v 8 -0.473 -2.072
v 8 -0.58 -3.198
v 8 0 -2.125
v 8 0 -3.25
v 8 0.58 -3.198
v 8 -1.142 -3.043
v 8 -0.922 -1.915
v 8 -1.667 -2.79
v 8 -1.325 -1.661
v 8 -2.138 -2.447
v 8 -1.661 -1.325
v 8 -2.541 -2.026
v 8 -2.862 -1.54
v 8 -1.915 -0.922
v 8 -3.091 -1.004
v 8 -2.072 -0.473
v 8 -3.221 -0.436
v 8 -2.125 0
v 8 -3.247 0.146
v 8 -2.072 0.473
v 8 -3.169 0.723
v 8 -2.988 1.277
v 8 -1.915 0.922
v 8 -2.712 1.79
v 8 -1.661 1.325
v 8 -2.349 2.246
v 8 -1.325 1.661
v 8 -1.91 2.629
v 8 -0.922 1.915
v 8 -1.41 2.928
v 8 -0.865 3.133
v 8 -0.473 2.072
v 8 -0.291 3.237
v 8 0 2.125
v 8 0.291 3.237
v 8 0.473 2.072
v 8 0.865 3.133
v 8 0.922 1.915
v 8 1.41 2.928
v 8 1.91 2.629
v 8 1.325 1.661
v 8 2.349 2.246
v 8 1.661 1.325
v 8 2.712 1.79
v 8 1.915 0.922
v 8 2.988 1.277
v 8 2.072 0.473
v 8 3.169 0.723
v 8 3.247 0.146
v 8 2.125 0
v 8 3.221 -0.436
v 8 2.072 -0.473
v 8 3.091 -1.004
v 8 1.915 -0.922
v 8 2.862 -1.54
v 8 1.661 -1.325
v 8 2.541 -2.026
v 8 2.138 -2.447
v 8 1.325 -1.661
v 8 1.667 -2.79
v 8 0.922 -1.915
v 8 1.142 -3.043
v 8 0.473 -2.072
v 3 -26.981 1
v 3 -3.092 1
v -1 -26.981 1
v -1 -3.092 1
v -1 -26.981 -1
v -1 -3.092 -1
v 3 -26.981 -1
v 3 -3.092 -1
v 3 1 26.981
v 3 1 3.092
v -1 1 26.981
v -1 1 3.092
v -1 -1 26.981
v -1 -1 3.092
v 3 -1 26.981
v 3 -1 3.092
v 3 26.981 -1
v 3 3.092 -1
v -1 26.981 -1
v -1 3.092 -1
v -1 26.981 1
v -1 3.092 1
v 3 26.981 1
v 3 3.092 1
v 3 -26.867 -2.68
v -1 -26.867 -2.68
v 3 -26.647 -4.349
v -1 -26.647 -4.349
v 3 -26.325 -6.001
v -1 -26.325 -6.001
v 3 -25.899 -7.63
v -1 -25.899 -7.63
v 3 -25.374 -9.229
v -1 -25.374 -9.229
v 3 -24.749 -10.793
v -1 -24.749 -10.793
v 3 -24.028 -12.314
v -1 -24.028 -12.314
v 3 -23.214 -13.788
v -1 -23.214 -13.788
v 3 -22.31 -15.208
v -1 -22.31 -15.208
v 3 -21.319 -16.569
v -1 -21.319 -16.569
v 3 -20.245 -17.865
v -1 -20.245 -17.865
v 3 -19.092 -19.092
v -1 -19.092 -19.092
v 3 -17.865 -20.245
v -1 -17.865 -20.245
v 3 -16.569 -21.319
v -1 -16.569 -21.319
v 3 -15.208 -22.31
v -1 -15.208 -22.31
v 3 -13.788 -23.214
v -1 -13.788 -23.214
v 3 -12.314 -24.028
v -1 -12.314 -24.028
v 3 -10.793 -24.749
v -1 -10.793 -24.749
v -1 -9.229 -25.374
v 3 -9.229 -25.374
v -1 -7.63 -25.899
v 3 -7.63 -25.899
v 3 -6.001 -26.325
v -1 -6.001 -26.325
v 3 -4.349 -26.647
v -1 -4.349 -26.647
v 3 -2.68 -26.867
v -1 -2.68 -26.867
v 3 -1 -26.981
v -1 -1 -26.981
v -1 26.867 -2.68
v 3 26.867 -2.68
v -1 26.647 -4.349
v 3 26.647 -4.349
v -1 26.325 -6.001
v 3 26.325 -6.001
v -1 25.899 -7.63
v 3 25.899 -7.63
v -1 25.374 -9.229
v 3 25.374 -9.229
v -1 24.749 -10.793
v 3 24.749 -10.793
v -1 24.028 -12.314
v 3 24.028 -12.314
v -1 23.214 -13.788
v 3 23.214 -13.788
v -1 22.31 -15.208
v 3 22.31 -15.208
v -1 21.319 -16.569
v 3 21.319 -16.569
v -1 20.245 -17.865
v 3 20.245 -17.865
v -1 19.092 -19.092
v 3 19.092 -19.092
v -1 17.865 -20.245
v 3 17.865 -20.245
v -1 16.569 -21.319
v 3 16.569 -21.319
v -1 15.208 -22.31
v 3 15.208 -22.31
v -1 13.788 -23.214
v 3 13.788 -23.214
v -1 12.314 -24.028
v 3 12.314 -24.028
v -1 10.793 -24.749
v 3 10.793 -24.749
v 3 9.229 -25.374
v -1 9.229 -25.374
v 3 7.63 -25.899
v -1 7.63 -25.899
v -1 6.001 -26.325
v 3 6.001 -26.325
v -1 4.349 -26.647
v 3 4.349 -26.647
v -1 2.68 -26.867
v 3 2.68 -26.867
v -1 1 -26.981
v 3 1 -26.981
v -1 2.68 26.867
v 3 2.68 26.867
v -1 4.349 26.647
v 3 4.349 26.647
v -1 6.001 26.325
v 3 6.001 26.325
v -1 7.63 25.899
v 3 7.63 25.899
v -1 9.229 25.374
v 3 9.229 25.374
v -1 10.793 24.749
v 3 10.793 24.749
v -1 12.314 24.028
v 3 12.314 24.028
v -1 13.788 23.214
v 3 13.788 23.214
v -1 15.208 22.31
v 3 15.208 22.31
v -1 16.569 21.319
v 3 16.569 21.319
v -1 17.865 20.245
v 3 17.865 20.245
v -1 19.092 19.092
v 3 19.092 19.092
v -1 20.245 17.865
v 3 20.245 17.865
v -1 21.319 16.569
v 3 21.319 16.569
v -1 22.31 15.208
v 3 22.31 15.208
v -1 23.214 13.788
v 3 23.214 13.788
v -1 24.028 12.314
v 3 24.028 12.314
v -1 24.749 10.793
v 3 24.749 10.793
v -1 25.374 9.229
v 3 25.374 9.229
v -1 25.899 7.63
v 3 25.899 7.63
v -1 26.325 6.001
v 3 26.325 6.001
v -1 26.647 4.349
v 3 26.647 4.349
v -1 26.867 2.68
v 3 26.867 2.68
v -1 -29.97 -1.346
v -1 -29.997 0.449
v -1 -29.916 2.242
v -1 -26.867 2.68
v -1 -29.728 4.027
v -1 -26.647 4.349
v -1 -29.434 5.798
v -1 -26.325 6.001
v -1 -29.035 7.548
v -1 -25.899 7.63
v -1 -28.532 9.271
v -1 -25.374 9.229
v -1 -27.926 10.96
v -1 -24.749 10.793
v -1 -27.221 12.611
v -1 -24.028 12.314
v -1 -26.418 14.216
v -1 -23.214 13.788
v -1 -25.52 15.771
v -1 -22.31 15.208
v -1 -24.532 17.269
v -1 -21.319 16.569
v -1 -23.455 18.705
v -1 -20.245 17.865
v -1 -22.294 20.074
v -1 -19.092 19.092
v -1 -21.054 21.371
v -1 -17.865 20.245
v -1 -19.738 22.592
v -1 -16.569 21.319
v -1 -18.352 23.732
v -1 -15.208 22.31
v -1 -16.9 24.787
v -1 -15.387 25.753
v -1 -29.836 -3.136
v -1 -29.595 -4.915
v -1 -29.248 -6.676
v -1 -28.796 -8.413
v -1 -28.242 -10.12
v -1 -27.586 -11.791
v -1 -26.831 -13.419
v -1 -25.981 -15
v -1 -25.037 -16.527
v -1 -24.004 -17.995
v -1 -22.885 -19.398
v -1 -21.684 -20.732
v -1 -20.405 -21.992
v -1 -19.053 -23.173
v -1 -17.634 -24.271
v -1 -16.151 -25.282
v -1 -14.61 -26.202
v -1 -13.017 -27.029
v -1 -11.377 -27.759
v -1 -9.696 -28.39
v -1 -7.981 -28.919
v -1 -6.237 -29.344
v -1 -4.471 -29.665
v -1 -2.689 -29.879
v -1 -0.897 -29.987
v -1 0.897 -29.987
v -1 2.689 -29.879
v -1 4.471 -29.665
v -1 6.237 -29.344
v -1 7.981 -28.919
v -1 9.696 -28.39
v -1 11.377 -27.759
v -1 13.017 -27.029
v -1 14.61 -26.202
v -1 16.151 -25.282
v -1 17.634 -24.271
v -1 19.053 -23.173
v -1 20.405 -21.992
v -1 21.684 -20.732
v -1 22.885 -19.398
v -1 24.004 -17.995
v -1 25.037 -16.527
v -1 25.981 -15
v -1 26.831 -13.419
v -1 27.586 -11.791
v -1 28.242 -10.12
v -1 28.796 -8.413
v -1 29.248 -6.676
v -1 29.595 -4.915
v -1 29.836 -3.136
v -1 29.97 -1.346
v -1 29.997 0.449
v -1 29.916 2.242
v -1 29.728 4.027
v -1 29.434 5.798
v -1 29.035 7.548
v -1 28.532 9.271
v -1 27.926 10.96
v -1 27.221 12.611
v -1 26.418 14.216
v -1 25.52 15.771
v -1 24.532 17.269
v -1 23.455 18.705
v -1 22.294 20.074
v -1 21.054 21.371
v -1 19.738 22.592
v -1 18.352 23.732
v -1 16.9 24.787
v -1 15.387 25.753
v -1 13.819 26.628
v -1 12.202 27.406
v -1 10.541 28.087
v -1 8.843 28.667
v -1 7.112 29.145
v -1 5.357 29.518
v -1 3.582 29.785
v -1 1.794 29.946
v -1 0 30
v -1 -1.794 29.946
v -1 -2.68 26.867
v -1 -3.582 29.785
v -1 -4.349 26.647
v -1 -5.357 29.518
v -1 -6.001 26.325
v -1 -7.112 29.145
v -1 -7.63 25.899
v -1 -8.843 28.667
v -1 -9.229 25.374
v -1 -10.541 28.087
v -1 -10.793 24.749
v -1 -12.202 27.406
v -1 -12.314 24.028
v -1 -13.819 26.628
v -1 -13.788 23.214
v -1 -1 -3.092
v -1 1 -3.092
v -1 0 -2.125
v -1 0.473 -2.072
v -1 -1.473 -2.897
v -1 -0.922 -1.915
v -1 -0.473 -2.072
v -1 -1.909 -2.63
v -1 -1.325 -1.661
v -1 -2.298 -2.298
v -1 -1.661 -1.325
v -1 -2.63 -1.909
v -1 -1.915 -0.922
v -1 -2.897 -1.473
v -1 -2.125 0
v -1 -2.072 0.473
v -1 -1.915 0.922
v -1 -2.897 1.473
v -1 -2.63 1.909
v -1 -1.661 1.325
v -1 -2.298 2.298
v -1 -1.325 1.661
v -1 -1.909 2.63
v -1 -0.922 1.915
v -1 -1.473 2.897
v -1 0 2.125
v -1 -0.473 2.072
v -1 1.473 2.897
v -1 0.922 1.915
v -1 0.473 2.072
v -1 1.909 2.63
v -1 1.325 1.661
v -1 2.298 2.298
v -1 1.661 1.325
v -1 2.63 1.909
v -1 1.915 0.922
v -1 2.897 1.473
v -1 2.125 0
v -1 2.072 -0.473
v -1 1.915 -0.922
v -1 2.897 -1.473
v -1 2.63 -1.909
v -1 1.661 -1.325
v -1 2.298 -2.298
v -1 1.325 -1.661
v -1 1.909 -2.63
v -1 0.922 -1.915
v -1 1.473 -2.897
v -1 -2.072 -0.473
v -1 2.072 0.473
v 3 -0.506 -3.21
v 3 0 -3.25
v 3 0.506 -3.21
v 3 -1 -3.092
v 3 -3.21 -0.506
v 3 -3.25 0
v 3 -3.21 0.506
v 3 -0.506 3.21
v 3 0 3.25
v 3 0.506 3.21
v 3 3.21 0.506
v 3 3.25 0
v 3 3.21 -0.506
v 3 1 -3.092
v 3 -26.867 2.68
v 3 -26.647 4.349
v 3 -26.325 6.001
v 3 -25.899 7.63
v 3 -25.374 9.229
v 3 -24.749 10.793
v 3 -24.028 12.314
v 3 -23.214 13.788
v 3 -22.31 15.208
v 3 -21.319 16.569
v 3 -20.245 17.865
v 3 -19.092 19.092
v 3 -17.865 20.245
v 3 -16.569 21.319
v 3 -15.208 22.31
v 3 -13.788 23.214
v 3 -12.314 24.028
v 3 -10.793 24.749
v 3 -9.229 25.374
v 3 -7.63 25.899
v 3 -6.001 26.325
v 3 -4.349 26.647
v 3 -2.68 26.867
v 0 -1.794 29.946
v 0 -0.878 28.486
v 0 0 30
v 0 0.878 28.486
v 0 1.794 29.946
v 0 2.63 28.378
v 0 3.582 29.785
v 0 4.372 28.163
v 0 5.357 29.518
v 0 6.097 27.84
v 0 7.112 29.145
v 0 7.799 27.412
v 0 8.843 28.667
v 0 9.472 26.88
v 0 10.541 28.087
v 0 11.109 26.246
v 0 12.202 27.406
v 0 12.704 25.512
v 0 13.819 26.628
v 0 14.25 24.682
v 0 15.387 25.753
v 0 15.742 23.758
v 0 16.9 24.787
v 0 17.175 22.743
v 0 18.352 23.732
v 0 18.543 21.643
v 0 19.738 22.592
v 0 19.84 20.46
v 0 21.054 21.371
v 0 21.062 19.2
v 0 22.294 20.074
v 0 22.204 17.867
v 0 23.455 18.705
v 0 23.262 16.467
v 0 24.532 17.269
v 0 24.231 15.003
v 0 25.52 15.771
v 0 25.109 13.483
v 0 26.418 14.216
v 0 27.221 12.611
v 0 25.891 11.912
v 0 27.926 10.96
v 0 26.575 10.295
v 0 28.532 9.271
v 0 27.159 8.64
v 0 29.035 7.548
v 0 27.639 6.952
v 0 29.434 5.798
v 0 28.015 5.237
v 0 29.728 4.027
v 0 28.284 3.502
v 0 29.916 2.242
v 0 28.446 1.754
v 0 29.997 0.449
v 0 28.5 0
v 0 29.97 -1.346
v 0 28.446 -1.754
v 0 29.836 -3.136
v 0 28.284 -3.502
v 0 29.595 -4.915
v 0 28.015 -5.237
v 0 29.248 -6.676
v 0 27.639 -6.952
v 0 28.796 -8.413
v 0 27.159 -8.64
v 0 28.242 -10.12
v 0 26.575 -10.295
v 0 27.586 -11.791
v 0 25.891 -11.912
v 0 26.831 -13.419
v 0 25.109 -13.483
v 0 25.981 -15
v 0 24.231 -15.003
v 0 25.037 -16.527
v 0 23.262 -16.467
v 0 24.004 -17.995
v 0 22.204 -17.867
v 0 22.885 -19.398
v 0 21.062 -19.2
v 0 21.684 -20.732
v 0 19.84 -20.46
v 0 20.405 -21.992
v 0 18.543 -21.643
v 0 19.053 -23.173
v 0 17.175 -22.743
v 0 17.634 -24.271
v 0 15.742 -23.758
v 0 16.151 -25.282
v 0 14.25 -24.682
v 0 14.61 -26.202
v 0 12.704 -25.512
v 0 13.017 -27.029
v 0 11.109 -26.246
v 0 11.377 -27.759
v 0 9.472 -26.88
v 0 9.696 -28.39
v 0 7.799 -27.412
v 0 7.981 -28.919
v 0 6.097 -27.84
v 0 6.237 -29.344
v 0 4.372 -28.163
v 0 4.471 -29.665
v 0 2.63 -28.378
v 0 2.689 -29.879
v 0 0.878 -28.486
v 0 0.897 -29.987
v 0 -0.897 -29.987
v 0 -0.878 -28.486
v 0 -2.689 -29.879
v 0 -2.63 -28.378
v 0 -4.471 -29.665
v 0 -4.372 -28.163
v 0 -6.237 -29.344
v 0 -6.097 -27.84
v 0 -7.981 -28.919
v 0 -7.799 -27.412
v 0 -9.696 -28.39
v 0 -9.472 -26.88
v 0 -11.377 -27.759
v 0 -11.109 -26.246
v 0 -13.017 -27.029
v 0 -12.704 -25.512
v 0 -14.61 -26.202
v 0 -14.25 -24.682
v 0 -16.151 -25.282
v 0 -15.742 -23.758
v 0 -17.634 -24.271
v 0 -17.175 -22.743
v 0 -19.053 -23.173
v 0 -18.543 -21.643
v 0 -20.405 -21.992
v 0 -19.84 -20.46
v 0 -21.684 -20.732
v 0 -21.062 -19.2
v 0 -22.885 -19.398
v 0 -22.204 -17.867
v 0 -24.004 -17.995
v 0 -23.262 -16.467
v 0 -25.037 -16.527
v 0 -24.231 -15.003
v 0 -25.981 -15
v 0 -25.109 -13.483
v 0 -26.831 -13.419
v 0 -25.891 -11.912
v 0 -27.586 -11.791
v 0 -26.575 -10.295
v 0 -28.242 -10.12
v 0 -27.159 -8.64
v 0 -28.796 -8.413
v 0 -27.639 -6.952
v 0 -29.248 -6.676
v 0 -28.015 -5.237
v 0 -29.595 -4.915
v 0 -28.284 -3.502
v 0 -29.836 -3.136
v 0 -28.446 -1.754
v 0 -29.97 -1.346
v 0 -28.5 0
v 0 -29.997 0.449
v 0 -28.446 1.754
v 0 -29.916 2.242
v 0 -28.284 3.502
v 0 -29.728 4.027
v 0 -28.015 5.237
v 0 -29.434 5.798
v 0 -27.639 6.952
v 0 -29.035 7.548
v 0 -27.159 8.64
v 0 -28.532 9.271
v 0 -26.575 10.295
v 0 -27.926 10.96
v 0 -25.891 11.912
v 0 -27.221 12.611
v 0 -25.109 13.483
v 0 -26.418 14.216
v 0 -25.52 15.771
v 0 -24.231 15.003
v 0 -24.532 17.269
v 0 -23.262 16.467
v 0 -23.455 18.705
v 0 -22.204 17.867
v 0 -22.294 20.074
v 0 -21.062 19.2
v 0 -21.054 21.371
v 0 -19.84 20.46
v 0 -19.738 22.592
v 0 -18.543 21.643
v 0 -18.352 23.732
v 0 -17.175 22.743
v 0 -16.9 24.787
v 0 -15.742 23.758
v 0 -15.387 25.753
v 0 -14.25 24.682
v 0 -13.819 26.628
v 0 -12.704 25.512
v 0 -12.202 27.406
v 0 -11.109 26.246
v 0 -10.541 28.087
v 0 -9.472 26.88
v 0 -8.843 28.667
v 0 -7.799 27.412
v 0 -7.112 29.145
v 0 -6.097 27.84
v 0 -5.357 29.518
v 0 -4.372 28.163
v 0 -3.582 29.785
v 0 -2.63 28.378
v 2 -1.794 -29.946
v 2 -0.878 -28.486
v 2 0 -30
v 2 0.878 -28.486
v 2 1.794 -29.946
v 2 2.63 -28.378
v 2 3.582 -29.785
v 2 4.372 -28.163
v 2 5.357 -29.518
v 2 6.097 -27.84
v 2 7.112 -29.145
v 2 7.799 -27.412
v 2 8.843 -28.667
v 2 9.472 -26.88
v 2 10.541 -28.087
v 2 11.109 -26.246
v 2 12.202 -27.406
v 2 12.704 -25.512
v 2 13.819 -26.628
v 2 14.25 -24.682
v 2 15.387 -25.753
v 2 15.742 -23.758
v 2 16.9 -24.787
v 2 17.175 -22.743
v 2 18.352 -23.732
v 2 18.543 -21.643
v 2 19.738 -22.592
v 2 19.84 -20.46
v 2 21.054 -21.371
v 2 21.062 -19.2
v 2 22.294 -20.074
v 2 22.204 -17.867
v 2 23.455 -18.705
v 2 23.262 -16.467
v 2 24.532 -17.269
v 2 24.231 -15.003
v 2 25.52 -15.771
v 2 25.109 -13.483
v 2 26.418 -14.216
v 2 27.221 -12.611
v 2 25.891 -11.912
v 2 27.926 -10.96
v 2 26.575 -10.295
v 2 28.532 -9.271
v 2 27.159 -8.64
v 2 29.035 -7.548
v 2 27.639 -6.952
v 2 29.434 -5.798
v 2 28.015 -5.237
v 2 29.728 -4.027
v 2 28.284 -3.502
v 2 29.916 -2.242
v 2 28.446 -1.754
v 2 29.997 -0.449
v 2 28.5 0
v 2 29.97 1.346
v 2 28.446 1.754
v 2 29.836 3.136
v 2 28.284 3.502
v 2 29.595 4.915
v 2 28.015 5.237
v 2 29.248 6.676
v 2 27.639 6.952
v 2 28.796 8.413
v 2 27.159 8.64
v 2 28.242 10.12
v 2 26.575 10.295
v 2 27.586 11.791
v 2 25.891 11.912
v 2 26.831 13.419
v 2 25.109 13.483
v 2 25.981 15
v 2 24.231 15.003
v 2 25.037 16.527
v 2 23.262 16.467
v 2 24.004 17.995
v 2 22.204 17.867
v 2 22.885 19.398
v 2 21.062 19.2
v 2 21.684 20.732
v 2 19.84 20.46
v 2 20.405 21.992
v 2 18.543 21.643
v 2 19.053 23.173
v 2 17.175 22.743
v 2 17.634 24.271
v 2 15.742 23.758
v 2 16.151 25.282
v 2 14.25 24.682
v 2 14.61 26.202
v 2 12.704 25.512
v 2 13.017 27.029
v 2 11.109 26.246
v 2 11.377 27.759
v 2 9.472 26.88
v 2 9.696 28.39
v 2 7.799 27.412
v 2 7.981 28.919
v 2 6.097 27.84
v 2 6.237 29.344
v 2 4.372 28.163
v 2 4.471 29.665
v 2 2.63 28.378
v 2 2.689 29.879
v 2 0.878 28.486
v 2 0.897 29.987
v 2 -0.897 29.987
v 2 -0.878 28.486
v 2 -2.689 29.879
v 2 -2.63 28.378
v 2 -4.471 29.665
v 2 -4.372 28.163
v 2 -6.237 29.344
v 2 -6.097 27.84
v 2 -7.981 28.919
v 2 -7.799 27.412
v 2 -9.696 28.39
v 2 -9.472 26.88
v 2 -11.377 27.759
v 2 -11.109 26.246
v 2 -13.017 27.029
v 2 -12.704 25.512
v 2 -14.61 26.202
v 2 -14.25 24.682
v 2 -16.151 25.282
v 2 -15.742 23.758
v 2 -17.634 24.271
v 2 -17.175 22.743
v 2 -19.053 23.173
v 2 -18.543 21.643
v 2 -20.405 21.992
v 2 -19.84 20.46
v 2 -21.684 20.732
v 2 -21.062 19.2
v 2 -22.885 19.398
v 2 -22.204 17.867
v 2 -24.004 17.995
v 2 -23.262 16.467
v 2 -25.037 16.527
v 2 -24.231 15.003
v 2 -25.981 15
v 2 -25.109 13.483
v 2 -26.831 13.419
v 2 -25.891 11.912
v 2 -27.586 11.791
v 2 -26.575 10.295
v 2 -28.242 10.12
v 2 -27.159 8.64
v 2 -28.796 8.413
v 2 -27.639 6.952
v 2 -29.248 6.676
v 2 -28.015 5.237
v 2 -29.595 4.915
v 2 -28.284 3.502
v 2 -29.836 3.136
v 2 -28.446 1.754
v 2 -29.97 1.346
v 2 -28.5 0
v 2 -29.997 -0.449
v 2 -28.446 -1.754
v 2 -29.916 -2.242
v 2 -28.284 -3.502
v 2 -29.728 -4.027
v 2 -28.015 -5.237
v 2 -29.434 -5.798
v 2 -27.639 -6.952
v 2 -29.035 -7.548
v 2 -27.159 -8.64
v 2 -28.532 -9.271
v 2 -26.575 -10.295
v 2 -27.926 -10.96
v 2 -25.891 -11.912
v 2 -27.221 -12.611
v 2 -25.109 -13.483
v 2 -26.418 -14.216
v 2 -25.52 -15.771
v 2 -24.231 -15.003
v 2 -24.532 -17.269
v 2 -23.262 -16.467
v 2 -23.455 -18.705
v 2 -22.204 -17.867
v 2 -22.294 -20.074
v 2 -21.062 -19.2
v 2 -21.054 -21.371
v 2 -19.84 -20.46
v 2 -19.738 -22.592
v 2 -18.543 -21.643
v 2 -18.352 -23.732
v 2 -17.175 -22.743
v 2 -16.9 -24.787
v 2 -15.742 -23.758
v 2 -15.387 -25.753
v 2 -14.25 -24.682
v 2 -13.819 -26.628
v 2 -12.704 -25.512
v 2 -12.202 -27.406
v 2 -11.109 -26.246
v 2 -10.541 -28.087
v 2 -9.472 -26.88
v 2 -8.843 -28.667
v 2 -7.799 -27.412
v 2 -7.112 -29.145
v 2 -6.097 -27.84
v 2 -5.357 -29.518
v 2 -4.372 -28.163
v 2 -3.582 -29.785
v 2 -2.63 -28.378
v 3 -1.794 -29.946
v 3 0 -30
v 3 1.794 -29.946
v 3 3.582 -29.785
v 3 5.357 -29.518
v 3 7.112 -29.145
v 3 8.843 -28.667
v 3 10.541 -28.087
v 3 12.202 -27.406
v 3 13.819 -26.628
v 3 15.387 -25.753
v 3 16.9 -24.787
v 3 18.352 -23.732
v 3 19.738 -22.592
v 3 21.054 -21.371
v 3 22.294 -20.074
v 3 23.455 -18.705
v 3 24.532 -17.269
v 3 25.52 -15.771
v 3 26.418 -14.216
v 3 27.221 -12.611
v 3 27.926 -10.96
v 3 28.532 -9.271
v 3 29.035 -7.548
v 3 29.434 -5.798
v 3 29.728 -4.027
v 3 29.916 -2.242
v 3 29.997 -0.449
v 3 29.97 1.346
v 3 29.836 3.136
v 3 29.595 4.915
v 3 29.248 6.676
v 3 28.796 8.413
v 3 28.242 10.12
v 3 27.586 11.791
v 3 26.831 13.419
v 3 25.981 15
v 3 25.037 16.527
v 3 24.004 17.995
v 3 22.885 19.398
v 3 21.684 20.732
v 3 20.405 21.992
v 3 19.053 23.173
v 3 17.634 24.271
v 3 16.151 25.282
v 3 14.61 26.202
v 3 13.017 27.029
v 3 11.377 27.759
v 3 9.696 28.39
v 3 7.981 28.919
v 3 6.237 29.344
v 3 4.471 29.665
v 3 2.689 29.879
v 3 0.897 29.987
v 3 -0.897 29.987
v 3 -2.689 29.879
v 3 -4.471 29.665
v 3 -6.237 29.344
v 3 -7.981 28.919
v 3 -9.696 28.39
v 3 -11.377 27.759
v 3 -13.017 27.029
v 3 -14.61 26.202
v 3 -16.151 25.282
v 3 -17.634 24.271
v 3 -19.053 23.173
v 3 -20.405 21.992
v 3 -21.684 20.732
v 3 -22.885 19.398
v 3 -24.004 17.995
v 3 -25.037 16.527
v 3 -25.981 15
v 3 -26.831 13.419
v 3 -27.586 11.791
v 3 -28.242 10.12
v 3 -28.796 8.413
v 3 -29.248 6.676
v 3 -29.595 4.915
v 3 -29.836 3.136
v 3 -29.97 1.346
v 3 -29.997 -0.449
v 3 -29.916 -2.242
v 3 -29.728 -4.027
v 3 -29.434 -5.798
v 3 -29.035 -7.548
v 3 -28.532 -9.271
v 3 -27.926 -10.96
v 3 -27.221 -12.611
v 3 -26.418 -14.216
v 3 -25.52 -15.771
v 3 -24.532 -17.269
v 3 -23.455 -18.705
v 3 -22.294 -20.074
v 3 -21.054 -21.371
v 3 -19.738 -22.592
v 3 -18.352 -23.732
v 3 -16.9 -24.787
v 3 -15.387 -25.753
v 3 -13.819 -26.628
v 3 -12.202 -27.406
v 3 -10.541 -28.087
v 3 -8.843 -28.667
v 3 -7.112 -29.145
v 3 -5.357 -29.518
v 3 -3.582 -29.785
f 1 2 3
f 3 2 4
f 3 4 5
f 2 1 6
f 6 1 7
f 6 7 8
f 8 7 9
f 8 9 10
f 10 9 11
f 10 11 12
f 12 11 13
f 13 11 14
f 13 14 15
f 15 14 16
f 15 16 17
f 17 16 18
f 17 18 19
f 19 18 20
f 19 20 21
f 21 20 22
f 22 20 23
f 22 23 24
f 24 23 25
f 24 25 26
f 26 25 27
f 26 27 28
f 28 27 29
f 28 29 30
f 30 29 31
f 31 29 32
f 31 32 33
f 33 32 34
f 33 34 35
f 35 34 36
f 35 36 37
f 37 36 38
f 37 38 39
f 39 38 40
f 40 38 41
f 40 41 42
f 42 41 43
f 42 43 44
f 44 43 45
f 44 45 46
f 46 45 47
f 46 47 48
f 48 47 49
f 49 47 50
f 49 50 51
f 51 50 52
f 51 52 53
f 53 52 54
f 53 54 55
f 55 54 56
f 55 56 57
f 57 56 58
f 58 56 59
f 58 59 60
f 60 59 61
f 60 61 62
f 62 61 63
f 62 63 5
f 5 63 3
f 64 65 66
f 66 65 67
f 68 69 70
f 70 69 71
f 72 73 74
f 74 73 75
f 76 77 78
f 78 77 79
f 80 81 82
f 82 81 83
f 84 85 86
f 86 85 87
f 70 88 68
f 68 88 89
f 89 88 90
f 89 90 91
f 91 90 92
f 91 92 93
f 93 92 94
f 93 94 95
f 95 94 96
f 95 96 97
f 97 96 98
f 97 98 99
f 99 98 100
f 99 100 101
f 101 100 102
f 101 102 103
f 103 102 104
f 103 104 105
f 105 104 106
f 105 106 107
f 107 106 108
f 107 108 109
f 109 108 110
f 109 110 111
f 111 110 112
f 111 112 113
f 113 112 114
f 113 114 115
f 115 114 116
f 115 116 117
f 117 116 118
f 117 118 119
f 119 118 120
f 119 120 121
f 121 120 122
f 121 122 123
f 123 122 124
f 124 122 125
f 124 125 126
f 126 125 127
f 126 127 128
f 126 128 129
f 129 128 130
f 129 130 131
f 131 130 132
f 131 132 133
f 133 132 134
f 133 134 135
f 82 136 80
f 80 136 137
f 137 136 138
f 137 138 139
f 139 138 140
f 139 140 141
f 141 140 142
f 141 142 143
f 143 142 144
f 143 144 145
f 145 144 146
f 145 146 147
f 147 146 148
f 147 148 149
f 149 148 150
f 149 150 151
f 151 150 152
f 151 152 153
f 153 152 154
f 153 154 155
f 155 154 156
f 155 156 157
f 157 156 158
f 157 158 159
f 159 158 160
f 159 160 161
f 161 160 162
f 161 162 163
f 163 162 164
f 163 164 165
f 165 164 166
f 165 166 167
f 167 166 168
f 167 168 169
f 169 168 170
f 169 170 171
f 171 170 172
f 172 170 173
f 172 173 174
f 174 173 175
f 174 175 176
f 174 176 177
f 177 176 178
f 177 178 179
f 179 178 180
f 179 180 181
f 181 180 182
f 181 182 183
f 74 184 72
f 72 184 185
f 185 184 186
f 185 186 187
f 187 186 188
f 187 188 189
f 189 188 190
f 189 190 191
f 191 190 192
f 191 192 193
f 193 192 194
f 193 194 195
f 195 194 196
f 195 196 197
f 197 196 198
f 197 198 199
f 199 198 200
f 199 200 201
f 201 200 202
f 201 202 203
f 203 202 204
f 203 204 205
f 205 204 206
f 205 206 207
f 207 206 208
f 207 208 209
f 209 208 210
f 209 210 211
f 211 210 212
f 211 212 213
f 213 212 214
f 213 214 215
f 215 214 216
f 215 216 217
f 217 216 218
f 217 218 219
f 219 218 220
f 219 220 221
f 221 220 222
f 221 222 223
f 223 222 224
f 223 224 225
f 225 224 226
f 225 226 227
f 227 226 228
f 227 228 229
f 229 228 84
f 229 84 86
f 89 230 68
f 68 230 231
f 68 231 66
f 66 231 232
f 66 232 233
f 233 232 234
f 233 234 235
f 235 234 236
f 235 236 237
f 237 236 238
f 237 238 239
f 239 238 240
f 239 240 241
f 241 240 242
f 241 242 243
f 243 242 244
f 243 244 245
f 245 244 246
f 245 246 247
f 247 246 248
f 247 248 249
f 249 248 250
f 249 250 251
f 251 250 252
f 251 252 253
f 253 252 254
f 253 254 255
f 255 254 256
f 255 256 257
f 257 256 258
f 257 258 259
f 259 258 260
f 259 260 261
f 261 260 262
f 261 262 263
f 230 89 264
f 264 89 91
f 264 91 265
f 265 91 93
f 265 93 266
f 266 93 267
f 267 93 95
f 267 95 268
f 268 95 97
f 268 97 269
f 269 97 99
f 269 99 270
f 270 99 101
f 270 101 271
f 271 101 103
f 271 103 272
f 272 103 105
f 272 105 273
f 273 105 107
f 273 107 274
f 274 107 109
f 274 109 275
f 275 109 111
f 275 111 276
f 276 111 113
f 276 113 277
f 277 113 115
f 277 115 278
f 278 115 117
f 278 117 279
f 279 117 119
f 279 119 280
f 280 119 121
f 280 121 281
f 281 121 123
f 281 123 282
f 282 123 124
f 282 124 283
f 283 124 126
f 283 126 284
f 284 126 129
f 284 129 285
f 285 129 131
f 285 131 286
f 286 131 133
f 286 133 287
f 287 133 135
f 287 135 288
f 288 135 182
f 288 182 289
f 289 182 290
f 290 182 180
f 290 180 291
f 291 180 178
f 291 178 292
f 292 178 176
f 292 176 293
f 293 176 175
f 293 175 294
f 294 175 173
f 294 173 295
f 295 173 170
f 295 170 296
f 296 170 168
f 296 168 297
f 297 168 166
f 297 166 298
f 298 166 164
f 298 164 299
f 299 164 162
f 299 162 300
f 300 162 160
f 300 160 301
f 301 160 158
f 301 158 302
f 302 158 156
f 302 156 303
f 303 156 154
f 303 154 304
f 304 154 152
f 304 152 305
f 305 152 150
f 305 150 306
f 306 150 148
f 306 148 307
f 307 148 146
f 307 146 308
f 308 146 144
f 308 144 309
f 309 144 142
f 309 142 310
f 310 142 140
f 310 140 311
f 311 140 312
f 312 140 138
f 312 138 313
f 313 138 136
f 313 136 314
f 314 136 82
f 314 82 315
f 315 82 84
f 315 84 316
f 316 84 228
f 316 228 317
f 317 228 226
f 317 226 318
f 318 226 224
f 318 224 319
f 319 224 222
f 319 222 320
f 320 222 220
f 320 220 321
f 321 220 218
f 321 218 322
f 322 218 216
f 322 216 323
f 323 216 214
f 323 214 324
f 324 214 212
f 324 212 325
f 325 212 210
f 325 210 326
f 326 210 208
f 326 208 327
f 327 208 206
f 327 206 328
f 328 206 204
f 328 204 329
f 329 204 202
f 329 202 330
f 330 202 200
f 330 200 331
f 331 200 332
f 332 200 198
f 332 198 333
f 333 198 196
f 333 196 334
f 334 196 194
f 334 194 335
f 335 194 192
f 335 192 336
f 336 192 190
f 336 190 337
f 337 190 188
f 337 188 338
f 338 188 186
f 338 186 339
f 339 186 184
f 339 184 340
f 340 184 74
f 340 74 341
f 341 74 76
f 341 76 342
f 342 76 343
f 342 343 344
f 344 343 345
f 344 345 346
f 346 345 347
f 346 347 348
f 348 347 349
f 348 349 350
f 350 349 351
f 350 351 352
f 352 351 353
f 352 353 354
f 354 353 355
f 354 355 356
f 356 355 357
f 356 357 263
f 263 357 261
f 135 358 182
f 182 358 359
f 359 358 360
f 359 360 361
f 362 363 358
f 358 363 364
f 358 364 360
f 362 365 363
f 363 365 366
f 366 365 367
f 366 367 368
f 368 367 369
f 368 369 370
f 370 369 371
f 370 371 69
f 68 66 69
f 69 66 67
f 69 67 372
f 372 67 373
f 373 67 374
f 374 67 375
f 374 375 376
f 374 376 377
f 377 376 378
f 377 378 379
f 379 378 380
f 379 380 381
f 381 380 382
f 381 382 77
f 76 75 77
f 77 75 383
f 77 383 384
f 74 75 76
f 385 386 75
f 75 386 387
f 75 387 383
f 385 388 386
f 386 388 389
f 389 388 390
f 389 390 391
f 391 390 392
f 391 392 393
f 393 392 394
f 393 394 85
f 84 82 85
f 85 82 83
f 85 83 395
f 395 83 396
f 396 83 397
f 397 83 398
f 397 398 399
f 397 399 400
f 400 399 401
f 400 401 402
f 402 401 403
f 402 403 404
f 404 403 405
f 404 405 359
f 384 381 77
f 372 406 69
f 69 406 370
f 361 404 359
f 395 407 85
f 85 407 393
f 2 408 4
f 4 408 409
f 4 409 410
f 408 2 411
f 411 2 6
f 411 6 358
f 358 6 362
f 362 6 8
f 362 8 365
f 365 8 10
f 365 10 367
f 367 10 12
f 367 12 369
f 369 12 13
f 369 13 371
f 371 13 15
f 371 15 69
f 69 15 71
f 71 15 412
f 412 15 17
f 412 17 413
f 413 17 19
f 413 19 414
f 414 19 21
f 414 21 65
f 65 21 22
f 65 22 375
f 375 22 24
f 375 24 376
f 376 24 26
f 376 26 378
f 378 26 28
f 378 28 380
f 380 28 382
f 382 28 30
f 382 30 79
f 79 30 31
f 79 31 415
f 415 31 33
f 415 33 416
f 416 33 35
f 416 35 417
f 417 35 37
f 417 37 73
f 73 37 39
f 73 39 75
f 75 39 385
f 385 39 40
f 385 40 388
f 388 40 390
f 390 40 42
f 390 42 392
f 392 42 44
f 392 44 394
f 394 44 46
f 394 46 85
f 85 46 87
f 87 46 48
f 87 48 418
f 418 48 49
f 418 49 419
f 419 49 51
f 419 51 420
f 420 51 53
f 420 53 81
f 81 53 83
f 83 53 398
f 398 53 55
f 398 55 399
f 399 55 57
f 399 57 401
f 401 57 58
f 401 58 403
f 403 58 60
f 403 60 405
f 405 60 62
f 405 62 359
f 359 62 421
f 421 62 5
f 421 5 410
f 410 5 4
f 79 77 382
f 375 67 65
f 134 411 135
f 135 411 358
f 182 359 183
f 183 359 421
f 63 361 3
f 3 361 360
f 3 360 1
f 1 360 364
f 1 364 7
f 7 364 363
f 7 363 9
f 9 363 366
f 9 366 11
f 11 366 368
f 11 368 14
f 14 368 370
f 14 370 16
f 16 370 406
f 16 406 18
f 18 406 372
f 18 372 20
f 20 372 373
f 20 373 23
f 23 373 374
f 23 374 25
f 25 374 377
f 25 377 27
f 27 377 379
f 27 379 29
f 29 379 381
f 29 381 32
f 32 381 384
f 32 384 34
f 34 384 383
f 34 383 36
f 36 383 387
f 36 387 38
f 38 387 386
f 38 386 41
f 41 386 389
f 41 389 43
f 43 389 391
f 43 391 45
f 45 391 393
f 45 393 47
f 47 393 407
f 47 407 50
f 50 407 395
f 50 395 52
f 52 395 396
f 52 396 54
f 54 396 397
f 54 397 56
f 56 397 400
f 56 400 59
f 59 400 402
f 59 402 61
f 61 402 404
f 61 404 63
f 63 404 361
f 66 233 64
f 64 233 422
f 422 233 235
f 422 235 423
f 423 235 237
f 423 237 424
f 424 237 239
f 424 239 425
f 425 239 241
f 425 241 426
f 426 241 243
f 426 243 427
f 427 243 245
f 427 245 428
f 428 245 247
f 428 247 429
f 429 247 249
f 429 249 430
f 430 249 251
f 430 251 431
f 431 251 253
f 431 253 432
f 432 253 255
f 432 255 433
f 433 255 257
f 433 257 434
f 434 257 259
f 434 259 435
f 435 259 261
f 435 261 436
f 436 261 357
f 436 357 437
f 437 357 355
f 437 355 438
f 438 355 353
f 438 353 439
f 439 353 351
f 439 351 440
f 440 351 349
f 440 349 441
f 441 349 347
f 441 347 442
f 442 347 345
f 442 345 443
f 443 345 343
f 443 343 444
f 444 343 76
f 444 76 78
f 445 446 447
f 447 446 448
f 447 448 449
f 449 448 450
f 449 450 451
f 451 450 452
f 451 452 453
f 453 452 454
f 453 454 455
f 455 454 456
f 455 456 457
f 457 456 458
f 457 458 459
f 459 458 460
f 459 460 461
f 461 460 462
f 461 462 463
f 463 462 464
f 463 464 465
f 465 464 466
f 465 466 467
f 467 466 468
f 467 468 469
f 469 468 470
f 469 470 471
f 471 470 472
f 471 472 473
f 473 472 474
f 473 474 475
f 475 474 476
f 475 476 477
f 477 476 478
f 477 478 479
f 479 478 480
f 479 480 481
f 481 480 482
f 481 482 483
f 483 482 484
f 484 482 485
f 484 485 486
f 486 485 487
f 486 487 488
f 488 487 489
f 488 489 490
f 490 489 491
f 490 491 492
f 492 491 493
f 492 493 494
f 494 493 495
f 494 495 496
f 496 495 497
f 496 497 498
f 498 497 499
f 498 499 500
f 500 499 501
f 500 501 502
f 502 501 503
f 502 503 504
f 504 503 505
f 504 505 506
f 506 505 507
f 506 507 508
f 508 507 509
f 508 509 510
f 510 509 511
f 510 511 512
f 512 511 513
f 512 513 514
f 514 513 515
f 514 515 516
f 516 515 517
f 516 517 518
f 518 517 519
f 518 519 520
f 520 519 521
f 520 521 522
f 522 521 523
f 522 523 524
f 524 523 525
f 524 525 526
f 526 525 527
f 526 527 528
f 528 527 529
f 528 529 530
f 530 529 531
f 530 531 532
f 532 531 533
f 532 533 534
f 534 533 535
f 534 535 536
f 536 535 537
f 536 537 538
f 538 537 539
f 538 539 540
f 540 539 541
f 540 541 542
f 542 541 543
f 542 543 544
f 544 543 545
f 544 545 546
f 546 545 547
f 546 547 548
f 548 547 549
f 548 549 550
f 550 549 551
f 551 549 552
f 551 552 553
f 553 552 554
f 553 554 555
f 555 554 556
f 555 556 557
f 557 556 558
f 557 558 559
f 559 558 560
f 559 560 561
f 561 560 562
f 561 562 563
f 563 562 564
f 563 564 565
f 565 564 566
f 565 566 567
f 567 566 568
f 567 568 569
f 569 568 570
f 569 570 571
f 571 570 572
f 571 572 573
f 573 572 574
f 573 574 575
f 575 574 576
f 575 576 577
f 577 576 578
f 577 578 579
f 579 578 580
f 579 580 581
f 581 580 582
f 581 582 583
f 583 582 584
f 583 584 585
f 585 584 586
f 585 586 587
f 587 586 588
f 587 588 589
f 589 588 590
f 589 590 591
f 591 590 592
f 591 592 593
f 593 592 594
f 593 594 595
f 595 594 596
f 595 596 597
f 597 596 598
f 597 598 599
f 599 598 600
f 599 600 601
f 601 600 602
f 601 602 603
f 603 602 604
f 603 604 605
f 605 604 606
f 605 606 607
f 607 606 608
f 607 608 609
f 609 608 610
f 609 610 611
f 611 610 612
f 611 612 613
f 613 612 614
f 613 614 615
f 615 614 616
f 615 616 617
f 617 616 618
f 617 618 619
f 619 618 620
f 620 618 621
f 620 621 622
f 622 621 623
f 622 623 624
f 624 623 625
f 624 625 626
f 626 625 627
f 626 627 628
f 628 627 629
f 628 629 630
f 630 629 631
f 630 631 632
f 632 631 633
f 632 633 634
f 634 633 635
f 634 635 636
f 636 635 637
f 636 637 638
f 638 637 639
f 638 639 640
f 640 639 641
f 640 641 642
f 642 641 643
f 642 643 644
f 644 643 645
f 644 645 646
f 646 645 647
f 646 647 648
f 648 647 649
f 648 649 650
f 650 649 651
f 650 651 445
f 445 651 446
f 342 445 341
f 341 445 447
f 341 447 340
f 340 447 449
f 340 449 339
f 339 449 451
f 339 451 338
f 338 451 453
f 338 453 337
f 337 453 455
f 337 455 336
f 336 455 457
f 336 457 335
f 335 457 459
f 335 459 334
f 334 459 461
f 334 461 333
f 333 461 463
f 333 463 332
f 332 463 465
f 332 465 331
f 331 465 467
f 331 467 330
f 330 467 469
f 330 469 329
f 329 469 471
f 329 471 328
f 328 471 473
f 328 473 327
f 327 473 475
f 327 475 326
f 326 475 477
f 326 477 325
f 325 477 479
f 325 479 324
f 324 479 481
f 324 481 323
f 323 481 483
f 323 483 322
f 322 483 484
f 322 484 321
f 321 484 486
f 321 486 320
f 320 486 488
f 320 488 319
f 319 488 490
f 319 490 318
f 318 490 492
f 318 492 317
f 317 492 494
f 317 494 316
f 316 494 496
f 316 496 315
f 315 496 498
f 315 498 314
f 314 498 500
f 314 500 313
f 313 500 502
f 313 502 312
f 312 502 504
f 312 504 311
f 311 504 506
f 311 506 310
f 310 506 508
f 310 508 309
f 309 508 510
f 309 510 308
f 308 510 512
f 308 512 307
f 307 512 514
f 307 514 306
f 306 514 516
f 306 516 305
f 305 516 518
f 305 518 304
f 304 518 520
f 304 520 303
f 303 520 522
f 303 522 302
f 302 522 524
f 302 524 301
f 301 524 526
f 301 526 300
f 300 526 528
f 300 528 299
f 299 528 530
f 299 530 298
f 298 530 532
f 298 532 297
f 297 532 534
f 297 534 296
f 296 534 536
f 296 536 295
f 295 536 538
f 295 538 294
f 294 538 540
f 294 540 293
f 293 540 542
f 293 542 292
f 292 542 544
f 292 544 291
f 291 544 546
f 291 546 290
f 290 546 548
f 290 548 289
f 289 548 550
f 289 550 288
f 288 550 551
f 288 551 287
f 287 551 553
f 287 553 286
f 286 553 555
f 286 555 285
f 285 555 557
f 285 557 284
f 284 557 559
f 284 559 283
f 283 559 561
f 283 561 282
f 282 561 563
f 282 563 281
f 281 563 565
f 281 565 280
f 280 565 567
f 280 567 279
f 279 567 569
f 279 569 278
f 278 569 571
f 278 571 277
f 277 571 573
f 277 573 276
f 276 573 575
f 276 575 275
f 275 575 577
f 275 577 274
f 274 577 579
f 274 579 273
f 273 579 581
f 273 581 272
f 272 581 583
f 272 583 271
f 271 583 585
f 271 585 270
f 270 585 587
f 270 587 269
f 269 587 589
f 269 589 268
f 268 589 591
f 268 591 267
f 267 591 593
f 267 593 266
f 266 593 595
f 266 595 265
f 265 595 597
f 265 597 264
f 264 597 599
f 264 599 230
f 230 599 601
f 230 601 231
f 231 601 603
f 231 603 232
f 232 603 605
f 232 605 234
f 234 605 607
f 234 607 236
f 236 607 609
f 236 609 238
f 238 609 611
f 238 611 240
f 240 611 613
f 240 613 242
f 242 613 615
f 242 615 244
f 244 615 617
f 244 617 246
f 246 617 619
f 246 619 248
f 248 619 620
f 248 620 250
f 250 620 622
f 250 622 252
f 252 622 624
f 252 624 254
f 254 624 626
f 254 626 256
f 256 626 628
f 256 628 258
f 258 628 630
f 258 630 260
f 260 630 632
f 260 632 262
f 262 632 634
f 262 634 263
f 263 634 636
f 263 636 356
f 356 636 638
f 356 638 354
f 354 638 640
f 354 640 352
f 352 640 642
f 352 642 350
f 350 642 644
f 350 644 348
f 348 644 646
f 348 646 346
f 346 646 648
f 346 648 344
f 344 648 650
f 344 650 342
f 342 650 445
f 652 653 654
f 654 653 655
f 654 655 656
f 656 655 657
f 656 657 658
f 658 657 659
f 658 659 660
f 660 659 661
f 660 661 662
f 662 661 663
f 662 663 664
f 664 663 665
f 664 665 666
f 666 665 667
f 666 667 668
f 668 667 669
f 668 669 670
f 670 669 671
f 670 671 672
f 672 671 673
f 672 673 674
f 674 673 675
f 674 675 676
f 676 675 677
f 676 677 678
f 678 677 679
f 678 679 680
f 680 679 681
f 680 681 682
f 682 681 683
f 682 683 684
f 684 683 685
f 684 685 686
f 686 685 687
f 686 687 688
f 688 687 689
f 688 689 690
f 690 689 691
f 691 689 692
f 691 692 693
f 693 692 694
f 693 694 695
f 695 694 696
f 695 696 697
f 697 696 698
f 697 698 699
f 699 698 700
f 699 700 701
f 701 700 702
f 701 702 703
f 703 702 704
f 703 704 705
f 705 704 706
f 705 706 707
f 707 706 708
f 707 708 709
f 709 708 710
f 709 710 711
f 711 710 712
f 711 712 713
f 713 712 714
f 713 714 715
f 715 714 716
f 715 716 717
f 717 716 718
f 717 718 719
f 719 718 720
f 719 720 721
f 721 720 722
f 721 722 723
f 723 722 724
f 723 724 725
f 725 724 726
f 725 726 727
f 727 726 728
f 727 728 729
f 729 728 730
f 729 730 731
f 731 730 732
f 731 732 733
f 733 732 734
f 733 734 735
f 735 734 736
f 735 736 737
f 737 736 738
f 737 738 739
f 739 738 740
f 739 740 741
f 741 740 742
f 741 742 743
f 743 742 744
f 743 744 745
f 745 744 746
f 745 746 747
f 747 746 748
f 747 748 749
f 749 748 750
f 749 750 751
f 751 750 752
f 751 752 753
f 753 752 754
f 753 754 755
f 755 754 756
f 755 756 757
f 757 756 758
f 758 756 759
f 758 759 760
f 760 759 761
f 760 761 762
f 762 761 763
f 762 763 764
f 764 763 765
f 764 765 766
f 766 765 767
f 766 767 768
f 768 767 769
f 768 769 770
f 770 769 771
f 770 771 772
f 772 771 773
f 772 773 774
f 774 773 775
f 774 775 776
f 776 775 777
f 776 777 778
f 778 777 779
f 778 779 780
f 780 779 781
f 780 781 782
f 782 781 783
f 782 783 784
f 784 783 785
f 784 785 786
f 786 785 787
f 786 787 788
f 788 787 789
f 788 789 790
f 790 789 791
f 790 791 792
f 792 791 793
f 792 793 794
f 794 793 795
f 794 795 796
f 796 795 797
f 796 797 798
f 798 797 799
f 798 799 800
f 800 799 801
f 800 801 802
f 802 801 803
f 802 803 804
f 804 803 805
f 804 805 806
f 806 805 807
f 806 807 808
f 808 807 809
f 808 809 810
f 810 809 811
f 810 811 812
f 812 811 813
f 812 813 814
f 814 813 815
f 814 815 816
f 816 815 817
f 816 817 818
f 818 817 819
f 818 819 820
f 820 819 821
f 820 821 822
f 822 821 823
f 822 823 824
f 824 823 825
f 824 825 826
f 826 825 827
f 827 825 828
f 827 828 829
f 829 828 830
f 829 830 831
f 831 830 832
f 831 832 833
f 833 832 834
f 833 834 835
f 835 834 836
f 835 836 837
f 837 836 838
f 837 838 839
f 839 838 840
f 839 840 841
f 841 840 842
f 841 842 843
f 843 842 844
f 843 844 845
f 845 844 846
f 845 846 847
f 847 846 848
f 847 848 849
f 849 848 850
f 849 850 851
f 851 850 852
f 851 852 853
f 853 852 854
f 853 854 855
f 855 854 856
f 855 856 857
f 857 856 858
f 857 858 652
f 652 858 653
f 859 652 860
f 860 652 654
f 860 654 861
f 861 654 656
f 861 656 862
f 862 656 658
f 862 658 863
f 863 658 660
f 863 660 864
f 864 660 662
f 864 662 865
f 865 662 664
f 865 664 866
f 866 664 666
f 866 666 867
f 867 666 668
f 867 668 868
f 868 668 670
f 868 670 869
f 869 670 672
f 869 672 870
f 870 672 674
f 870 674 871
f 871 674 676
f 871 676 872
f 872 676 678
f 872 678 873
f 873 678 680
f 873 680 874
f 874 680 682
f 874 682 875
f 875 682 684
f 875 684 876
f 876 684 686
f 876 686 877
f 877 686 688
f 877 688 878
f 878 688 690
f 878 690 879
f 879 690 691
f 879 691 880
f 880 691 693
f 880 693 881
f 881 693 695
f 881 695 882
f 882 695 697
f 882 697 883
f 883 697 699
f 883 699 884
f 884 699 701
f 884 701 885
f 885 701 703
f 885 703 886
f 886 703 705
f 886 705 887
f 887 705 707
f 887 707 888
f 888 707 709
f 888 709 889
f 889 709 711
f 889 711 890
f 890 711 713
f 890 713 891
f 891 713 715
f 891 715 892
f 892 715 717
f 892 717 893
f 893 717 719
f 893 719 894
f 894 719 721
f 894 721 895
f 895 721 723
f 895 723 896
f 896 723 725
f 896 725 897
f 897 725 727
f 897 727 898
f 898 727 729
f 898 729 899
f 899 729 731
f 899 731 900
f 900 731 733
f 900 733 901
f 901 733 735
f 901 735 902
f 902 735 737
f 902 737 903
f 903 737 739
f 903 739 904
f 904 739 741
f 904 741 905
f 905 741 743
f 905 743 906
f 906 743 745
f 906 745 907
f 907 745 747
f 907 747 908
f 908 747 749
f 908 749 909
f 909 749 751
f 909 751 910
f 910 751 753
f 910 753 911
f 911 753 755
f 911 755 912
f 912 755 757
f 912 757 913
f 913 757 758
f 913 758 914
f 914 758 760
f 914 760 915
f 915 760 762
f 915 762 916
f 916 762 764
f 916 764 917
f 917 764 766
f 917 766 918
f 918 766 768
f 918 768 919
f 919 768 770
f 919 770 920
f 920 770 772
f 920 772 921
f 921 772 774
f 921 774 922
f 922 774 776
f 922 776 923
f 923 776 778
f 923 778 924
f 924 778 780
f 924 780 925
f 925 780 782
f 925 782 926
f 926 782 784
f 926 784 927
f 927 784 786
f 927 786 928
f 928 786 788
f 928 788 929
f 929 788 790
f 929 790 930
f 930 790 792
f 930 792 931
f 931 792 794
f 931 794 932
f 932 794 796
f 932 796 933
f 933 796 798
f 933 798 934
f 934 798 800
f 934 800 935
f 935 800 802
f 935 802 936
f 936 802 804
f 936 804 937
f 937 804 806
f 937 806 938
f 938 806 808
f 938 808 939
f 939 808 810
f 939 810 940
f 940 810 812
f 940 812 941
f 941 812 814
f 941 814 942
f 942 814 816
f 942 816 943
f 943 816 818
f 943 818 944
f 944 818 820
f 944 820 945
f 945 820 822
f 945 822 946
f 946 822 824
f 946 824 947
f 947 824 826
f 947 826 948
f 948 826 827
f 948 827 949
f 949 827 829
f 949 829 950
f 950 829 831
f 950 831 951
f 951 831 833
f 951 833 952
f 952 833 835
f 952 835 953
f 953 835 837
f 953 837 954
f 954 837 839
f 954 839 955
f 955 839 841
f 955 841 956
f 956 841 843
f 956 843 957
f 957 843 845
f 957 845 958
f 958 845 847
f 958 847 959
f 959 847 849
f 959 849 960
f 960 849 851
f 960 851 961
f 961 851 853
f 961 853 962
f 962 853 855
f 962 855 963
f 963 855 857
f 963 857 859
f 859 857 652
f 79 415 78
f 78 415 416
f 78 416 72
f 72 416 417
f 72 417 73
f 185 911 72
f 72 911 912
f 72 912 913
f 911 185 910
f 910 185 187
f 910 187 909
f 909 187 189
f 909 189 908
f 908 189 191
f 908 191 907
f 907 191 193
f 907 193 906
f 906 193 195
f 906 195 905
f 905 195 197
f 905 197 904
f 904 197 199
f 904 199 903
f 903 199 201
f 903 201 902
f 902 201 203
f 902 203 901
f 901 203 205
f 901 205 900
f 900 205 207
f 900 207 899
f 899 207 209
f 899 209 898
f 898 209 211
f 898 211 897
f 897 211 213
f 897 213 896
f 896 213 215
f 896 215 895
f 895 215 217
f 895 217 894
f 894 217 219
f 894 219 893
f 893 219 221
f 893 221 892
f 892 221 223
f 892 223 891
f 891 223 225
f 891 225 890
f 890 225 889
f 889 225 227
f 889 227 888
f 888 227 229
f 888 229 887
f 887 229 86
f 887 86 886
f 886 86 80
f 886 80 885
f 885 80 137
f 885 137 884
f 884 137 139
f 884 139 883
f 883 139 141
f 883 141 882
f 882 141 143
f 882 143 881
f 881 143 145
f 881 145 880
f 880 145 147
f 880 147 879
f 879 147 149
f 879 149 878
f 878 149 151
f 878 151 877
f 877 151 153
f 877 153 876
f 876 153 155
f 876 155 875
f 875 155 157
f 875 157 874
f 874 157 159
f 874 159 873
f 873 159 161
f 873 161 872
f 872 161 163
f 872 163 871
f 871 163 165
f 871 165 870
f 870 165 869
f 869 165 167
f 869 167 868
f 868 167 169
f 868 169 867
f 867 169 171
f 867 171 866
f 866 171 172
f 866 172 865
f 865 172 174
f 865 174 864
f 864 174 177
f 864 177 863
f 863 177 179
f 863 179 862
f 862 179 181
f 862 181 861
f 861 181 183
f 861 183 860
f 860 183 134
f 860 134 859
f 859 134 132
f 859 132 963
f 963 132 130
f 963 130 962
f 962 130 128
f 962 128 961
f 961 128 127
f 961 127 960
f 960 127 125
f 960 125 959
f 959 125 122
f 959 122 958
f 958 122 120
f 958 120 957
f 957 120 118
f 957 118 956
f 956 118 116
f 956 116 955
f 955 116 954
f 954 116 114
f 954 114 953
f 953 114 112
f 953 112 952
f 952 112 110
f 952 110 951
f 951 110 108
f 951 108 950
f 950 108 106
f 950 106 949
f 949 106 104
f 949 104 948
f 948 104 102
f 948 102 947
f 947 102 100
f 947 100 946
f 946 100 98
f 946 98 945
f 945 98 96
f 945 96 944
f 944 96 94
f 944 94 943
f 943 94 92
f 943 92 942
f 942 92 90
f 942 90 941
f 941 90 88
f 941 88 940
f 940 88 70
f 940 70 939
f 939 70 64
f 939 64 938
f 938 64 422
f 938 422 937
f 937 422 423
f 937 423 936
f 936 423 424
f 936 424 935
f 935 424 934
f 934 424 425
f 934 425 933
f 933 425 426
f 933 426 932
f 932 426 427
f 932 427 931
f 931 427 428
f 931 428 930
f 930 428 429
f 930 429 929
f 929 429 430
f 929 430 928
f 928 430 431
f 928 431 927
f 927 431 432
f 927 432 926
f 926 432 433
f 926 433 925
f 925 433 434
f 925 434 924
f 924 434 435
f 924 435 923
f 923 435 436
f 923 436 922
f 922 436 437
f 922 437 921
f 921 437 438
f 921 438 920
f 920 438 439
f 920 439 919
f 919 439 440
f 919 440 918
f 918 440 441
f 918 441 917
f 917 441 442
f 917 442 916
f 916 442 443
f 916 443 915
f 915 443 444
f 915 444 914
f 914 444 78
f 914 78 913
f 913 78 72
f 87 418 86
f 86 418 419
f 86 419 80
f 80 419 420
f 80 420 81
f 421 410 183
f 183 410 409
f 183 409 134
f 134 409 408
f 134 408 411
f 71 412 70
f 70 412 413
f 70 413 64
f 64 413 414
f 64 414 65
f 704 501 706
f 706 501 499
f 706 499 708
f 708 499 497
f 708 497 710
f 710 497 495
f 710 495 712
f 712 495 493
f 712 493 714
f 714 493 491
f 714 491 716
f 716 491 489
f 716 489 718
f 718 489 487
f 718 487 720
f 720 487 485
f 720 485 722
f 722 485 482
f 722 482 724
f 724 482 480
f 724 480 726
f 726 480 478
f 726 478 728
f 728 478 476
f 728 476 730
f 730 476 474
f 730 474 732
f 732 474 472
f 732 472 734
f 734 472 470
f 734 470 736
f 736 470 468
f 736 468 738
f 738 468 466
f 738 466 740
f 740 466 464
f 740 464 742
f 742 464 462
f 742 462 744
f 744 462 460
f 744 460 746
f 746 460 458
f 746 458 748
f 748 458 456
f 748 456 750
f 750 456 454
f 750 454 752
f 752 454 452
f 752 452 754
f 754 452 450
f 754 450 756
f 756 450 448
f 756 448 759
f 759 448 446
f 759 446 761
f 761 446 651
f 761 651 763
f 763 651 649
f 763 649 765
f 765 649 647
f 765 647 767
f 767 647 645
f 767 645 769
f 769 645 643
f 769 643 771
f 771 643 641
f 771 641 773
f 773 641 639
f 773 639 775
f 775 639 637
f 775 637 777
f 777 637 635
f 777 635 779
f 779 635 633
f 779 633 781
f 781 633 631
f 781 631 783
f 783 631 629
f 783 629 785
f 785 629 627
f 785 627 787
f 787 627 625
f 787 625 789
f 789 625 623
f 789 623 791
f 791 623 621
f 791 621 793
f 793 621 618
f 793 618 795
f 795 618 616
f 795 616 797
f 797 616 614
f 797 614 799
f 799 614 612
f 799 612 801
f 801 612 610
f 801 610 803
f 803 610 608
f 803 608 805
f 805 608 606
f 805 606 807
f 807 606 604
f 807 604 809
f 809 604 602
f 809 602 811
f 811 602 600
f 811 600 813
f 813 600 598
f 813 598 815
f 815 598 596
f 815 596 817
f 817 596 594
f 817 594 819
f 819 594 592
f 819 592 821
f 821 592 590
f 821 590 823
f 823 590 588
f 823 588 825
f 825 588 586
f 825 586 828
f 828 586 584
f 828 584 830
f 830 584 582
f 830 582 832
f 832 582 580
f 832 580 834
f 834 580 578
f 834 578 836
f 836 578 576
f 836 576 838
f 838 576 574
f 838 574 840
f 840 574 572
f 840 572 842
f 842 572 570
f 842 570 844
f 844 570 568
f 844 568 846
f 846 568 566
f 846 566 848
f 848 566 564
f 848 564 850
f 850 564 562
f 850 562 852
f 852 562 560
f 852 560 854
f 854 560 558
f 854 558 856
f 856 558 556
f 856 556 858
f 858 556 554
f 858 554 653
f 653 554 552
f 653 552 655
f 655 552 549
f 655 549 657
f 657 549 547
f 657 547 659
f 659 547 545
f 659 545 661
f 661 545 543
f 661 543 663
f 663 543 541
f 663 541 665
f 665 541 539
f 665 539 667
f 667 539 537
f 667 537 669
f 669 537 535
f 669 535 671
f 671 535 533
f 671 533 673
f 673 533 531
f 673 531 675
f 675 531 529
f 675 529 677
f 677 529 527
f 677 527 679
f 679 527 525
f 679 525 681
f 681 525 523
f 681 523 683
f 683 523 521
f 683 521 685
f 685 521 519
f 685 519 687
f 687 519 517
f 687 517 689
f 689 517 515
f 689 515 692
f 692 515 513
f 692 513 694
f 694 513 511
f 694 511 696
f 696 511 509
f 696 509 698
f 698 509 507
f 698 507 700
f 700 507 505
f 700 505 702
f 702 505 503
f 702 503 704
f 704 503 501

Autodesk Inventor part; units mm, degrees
ref_plane "YZ Plane" through (0, 0, 0) normal (1, 0, 0) x (0, 1, 0)
ref_plane "XZ Plane" through (0, 0, 0) normal (0, 1, 0) x (-1, 0, 0)
ref_plane "XY Plane" through (0, 0, 0) normal (0, 0, 1) x (1, 0, 0)
sketch "Sketch1" plane through (0, 0, 0) normal (1, 0, 0) x (0, 1, 0)
  circle A0 centre (0, 0) radius 28.5
  dimension "d0" = 57
extrude "Extrusion1" add sketch "Sketch1" along normal blind 2
sketch "Sketch2" plane through (2, 0, 0) normal (1, 0, 0) x (0, 0, -1)
  circle A0 centre (0, 0) radius 30
  dimension "d3" = 60
extrude "Extrusion2" add sketch "Sketch2" along normal blind 1
sketch "Sketch3" plane through (0, 0, 0) normal (-1, 0, 0) x (0, 0, 1)
  circle A0 centre (0, 0) radius 30
  dimension "d6" = 60
extrude "Extrusion3" add sketch "Sketch3" along normal blind 1
sketch "Sketch4" plane through (-1, 0, 0) normal (-1, 0, 0) x (0, 0, 1)
  circle A0 centre (0, 0) radius 27
  dimension "d9" = 54
extrude "Extrusion4" cut sketch "Sketch4" against normal blind 10
sketch "Sketch5" plane through (-1, 0, 0) normal (-1, 0, 0) x (0, 0, 1)
  circle A0 centre (0, 0) radius 2.125
  circle A1 centre (0, 0) radius 3.25
  dimension "d12" = 4.25
  dimension "d13" = 6.5
extrude "Extrusion5" add sketch "Sketch5" against normal blind 4
sketch "Sketch6" plane through (-1, 0, 0) normal (-1, 0, 0) x (0, 0, 1)
  line L0 (-2.9572, 0) -> (-2.9572, 1) construction
  line L1 (-2.9572, 1) -> (-2.9572, -1) construction
  line L2 (-2.9572, 1) -> (-27.9528, 1)
  line L3 (-27.9528, 1) -> (-27.9528, -1)
  line L4 (-27.9528, -1) -> (-2.9572, -1)
  line L5 (-2.9572, -1) -> (-2.9572, 1)
  point P0 (0, 0)
  dimension "d16" = 1
  dimension "d17" = 2
extrude "Extrusion6" add sketch "Sketch6" against normal blind 4
pattern_circular "Circular Pattern1" count 4 over 360 about axis through (-1, 0, 0) along (1, 0, 0) of "Extrusion6"
sketch "Sketch7" plane through (3, 0, 0) normal (1, 0, 0) x (0, 0, -1)
  circle A0 centre (0, 0) radius 2.125
  circle A1 centre (0, 0) radius 3.25
extrude "Extrusion7" add sketch "Sketch7" along normal blind 5
properties part number "mtv_brakeWheel(61mm)_1-14"
